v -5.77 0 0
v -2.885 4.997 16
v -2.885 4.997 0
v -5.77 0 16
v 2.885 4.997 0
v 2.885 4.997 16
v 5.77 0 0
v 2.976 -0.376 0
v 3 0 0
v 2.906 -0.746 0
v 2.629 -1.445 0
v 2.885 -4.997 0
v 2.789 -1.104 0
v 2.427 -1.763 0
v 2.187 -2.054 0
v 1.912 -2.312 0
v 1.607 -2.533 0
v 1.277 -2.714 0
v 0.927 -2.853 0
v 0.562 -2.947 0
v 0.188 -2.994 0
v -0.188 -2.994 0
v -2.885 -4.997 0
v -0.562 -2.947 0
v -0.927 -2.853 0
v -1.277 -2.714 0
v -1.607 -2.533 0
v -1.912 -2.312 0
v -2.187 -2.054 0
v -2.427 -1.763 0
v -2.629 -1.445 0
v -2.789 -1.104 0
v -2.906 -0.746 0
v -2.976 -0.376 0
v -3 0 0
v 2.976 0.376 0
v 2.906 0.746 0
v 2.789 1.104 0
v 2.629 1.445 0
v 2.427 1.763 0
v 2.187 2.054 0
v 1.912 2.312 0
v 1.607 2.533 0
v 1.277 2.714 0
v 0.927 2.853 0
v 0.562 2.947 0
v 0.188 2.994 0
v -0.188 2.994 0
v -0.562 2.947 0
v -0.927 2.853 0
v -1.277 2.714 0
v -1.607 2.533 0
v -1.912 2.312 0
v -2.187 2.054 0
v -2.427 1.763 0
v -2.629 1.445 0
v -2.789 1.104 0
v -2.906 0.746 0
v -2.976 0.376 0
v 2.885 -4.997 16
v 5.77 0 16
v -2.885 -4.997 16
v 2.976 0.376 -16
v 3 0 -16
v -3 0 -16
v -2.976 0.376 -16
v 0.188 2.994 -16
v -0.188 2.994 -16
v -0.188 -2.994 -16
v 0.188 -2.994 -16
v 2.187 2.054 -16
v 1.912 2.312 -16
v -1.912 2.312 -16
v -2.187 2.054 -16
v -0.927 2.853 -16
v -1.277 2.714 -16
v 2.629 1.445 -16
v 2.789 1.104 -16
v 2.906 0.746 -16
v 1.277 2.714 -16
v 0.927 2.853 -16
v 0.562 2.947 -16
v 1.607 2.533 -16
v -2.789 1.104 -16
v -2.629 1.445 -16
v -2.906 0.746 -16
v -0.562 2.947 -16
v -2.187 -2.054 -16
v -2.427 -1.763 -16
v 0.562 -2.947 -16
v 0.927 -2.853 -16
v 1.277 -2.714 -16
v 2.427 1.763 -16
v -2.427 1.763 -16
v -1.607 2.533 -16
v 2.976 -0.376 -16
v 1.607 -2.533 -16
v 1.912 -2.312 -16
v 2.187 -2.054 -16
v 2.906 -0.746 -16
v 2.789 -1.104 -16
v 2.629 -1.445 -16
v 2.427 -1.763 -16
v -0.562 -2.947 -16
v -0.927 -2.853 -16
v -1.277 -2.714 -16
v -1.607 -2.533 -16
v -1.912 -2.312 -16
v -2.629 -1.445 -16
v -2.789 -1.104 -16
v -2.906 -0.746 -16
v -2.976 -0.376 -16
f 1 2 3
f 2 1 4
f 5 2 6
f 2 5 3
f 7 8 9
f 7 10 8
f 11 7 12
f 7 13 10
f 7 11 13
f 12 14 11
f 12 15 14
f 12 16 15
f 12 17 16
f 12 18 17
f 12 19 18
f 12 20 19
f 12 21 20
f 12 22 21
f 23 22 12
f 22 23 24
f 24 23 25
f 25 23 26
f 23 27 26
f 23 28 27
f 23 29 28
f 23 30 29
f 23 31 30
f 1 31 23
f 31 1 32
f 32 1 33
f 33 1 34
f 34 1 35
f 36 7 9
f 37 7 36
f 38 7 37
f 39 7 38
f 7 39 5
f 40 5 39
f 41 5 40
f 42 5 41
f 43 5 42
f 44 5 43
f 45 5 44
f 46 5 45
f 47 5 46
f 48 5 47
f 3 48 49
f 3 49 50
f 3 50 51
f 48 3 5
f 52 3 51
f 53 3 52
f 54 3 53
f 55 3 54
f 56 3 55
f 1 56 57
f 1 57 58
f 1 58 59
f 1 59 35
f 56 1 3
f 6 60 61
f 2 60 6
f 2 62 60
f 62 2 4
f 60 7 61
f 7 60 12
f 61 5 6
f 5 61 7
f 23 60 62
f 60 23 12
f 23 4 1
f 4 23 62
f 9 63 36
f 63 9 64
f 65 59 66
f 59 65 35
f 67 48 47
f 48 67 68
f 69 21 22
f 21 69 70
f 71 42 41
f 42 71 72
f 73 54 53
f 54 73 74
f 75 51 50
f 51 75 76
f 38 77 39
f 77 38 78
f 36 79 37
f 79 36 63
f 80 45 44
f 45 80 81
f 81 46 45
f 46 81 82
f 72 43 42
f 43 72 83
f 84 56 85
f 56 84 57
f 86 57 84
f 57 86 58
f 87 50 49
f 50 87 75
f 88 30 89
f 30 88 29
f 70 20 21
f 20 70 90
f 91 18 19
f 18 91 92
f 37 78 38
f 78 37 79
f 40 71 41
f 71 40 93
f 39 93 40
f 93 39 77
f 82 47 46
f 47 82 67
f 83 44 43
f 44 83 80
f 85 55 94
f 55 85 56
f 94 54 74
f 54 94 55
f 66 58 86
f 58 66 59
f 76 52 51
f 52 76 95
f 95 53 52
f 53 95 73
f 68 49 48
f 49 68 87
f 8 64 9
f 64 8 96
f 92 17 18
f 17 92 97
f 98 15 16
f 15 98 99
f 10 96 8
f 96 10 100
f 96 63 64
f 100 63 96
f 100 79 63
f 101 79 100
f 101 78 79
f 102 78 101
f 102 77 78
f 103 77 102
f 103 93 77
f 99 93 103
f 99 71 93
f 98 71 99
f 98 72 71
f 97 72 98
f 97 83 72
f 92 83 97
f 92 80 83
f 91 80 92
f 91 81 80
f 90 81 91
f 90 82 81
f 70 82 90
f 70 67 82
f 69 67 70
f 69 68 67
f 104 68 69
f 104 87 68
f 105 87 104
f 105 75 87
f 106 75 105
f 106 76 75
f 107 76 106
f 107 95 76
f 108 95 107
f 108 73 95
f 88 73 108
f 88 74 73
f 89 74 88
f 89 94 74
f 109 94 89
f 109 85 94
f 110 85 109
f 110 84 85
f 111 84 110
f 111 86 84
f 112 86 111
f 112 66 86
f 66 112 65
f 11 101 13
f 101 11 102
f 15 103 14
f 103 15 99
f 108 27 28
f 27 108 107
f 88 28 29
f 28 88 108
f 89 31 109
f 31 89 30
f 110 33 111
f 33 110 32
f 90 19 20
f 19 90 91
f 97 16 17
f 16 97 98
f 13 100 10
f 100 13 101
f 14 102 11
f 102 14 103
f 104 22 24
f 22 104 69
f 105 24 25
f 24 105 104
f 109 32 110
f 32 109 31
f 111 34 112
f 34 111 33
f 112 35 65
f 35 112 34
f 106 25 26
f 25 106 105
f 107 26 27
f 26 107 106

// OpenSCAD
$fn = 50;


difference() {
	union() {
		linear_extrude(height = 16) {
			polygon(points = [[5.7700000000, 0.0000000000], [2.8850000000, 4.9969665798], [-2.8850000000, 4.9969665798], [-5.7700000000, 0.0000000000], [-2.8850000000, -4.9969665798], [2.8850000000, -4.9969665798]]);
		}
		translate(v = [0, 0, -16]) {
			cylinder(h = 16, r = 3.0000000000);
		}
	}
	union();
}
